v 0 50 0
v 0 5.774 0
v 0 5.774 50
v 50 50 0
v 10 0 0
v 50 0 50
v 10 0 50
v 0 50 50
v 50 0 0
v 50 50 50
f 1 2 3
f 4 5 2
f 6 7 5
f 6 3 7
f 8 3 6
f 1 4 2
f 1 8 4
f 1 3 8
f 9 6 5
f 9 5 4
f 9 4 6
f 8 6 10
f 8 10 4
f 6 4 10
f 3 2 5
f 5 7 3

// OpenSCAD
$fn = 1;
difference() {
    cube([50, 50, 50]);
    cylinder(d = 20, h = 50);
}
